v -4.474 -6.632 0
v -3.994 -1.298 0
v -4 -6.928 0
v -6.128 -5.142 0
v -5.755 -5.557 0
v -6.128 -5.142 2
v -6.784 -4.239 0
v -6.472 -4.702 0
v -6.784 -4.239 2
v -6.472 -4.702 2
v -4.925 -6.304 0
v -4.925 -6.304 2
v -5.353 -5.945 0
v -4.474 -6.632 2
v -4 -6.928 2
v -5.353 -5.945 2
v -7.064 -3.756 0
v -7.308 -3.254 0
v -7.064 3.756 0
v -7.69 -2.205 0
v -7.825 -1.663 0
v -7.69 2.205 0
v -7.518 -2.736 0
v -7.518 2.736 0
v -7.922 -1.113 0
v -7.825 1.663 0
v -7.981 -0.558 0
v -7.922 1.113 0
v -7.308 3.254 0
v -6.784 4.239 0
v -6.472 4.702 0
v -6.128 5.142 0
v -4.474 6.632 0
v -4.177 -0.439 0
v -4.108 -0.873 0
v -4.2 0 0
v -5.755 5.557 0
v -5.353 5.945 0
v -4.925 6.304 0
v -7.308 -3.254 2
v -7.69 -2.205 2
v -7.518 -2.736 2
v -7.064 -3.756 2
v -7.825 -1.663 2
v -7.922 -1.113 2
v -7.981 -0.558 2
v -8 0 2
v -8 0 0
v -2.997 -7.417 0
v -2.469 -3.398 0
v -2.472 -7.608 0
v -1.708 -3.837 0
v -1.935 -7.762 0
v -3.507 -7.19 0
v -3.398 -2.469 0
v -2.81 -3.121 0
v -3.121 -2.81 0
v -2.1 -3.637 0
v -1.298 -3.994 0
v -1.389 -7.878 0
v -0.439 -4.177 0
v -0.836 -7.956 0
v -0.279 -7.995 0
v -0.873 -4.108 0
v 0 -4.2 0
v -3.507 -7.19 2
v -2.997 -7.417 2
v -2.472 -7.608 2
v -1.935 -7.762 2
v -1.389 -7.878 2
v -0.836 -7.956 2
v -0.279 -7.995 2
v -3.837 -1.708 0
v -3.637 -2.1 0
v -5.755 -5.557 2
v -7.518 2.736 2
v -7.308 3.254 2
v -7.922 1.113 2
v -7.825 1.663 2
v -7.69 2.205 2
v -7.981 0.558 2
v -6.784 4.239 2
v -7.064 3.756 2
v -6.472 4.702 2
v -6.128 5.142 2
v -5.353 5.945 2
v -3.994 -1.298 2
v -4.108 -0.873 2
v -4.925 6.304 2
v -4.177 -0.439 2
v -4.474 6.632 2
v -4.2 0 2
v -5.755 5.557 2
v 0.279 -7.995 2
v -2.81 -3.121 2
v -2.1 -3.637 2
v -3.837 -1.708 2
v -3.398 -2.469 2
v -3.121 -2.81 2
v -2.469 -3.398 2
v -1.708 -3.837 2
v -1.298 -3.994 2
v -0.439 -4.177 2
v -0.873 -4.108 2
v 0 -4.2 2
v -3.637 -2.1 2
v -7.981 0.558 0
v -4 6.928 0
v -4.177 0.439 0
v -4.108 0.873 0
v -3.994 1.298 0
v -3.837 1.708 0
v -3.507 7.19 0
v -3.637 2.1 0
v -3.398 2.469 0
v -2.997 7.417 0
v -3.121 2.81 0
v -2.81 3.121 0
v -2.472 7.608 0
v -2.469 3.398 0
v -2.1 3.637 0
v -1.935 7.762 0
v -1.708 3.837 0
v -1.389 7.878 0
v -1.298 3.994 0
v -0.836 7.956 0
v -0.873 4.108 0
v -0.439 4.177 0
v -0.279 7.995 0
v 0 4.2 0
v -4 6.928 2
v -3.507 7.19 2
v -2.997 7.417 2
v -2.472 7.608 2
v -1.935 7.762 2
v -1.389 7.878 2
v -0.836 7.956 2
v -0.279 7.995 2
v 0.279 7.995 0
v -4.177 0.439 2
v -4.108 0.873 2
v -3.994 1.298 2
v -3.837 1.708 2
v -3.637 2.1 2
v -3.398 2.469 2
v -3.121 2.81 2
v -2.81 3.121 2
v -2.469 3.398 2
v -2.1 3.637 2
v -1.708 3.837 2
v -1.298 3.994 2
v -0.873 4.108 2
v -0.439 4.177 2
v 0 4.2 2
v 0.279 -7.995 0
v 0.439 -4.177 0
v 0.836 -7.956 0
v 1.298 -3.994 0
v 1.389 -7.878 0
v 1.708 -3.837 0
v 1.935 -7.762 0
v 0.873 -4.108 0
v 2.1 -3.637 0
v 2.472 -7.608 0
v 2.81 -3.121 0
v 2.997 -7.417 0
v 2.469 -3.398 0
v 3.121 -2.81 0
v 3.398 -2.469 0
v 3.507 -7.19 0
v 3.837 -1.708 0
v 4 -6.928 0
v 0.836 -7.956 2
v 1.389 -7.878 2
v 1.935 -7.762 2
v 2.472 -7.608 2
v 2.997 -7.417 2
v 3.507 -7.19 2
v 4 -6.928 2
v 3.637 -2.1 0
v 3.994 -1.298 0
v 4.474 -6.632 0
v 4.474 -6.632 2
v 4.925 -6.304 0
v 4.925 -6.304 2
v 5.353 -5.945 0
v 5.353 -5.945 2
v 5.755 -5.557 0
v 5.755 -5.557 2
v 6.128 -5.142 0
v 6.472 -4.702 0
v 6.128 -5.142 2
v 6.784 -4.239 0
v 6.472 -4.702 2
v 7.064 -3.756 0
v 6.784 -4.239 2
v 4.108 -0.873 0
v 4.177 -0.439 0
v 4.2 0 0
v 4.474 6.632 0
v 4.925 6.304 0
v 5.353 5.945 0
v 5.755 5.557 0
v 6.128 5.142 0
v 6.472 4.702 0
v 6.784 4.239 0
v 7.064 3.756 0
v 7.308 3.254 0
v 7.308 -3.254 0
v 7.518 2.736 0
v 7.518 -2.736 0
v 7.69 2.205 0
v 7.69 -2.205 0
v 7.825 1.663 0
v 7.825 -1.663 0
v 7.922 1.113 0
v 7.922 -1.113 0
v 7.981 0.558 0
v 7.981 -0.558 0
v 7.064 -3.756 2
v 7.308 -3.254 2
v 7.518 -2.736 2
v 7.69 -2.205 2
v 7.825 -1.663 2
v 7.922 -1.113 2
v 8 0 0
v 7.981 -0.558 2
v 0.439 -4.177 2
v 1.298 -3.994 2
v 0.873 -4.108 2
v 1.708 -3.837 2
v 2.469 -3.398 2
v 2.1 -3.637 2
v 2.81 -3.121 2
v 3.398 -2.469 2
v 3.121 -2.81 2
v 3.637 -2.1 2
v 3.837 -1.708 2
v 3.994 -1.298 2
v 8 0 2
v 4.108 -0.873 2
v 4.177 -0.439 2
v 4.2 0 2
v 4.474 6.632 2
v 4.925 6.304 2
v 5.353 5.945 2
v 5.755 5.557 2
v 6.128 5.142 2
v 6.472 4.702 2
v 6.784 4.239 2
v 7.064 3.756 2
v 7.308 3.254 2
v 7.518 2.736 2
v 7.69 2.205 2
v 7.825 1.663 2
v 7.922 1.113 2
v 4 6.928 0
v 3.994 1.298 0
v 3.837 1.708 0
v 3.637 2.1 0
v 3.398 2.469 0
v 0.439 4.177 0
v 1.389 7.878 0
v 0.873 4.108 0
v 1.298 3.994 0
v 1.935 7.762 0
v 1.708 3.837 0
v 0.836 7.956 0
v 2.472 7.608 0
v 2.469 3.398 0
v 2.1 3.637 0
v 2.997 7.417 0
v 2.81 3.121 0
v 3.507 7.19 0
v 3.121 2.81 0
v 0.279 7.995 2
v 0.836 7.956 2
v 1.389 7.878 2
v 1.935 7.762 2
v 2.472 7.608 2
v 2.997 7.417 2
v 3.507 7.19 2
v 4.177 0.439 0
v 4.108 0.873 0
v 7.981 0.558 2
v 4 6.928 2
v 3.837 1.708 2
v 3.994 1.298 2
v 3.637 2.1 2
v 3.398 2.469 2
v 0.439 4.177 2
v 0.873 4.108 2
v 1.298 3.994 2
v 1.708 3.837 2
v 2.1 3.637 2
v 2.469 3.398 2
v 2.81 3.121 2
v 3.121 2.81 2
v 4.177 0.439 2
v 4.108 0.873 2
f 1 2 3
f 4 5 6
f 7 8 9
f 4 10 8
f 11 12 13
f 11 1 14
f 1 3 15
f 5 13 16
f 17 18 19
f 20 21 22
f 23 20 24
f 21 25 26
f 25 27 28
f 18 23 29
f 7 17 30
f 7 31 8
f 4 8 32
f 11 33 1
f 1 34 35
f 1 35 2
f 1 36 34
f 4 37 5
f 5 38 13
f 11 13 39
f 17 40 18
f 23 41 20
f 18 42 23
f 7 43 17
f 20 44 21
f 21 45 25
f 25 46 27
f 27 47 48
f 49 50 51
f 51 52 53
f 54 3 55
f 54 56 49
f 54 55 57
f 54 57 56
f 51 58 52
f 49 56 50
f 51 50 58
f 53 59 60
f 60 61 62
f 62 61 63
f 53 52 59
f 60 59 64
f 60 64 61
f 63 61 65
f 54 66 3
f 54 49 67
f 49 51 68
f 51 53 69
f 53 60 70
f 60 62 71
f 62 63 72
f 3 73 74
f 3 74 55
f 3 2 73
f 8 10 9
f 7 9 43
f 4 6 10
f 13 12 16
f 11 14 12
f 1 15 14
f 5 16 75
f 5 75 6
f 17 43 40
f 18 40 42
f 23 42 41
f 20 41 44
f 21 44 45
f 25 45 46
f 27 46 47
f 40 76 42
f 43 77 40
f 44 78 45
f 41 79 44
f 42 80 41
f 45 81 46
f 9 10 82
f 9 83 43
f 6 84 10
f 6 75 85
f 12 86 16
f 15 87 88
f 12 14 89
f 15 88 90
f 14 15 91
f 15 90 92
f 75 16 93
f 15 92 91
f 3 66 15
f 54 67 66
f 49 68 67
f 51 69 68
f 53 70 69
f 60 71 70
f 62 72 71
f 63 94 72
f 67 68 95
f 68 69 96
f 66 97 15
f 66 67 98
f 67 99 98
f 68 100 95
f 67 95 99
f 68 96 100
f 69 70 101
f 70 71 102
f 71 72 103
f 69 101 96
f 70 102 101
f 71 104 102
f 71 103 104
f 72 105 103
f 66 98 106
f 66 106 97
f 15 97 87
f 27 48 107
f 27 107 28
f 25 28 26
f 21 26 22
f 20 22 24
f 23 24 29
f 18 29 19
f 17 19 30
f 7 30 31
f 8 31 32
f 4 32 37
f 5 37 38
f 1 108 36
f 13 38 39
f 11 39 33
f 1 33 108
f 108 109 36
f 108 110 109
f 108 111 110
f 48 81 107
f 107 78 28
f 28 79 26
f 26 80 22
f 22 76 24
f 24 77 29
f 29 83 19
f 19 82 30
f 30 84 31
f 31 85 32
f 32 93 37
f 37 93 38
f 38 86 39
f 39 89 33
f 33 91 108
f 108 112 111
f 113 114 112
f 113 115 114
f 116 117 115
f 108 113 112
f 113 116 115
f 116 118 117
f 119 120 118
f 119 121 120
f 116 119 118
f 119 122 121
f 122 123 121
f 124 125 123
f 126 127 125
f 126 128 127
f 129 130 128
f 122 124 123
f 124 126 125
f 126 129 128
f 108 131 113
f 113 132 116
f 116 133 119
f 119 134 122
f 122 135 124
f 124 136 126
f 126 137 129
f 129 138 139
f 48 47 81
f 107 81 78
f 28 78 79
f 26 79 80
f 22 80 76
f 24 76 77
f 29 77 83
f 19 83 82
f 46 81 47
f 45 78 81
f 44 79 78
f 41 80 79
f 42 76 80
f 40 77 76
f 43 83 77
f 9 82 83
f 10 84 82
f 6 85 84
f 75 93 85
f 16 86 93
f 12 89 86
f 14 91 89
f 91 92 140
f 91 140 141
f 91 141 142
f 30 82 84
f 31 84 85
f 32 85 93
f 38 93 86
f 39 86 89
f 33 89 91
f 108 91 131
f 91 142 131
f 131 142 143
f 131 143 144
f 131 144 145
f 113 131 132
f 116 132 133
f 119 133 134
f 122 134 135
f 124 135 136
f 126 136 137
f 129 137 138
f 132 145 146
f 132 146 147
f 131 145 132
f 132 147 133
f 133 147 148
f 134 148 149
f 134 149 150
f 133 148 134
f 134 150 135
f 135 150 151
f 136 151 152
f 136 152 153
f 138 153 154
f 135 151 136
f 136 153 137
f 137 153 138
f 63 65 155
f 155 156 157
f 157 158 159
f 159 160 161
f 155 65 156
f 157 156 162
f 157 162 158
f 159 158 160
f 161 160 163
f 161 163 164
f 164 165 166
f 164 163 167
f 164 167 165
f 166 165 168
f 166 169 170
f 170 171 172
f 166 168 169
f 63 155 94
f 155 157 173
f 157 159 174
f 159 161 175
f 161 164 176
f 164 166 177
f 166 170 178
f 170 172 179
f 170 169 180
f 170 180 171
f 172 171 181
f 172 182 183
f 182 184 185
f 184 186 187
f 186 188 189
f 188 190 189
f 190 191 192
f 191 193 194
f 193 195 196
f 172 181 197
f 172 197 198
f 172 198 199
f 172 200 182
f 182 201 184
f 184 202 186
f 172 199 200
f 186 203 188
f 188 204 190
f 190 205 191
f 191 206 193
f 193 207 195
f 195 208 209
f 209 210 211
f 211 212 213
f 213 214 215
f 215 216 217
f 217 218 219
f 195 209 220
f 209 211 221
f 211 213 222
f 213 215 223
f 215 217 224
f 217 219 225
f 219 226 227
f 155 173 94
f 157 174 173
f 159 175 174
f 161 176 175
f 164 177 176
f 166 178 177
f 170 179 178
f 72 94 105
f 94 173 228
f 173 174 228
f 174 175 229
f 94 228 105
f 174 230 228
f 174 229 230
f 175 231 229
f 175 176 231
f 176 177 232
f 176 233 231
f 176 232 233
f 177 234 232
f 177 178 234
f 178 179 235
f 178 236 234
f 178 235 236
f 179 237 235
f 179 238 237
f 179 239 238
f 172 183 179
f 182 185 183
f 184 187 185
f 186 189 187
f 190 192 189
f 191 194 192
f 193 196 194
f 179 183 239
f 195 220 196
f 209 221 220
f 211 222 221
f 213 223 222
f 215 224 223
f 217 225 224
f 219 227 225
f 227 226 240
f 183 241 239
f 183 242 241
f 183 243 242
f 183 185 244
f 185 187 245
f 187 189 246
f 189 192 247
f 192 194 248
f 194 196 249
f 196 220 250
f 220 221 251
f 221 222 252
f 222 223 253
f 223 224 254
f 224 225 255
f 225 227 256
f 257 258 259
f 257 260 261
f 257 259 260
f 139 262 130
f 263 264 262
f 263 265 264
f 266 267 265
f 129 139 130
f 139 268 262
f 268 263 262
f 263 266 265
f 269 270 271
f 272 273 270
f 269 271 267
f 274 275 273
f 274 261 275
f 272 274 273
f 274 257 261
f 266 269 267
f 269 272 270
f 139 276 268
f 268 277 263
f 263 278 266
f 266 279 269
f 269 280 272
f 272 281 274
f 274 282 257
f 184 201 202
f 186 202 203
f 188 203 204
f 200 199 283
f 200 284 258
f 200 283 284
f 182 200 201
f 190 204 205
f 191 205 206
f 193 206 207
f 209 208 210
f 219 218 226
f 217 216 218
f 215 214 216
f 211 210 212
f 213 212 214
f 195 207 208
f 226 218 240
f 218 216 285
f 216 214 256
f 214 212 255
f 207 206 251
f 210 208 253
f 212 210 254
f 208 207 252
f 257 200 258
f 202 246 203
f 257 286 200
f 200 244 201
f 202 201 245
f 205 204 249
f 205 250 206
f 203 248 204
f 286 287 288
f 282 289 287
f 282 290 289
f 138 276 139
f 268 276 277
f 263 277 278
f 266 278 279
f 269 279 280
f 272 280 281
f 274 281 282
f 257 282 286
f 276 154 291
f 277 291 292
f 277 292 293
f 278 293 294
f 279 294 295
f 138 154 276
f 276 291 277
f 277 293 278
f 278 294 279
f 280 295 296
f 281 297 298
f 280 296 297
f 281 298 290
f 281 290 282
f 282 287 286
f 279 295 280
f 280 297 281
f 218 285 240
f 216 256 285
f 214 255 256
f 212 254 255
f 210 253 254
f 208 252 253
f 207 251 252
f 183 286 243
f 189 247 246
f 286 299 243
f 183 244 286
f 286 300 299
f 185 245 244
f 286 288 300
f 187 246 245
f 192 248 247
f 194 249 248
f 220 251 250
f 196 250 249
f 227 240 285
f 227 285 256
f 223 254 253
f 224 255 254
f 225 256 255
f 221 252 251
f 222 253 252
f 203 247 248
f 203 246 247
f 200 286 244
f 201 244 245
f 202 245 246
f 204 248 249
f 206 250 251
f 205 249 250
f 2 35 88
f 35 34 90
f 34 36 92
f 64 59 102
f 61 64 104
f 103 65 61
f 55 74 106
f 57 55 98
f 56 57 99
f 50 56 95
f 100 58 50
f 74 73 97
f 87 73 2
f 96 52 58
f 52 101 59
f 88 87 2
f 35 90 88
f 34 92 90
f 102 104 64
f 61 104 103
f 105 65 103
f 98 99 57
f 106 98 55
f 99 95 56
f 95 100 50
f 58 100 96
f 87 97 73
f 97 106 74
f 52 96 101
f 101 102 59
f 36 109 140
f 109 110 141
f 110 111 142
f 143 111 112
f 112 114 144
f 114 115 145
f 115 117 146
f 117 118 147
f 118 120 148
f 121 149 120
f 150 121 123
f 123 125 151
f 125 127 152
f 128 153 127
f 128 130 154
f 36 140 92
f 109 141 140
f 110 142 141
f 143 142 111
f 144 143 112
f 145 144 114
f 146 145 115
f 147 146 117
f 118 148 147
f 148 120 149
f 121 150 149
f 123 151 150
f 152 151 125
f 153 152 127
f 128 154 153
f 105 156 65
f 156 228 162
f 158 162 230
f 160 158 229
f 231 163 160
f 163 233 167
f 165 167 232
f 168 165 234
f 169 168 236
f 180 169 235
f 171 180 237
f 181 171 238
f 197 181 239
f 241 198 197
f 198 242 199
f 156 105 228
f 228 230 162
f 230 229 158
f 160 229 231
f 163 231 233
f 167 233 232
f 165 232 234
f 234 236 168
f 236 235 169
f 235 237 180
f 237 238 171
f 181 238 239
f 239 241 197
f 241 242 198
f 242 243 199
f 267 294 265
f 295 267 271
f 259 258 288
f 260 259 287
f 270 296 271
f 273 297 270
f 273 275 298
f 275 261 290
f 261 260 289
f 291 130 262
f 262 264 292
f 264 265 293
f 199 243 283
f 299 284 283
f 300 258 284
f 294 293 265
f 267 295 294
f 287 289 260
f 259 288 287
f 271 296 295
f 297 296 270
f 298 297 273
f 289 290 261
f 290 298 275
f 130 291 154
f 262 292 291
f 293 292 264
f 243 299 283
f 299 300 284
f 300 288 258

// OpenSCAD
// file: ../lib/hardware.scad
// ============================================================================
// lib/hardware.scad — inserts, bearing pockets, motor patterns, race groove, helpers.
// ============================================================================
include <../config.scad>
eps = 0.01;

// Rounded box from z=0 up, corner radius r in XY.
module rbox(size, r = 3) {
    linear_extrude(height = size[2]) offset(r = r) offset(delta = -r) square([size[0], size[1]]);
}
// Cylinder along +X from x0 to x1 / along +Y / along +Z
module xcyl(d, x0, x1) { translate([x0, 0, 0]) rotate([0, 90, 0]) cylinder(d = d, h = x1 - x0); }
module ycyl(d, y0, y1) { translate([0, y0, 0]) rotate([-90, 0, 0]) cylinder(d = d, h = y1 - y0); }
module zcyl(d, z0, z1) { translate([0, 0, z0]) cylinder(d = d, h = z1 - z0); }

// Heat-set insert hole, axis -Z from z=0 (the face). size: "m3" | "m4" | "m5".
module insert_hole(size = "m3", extra = insert_extra) {
    d = size == "m3" ? m3_insert_d : size == "m4" ? m4_insert_d : m5_insert_d;
    h = size == "m3" ? m3_insert_h : size == "m4" ? m4_insert_h : m5_insert_h;
    pilot = size == "m3" ? 2.6 : size == "m4" ? 3.4 : 4.4;
    translate([0, 0, -h]) cylinder(d = d, h = h + eps);
    translate([0, 0, -h - extra]) cylinder(d = pilot, h = extra + eps);
    translate([0, 0, -0.6]) cylinder(d1 = d, d2 = d + 1.2, h = 0.6 + eps);   // lead-in chamfer
}
// Through hole with a counterbore for the head, axis Z, face at z=0, part below.
module cbore(d, head_d, head_h, through = 30) {
    translate([0, 0, -head_h]) cylinder(d = head_d, h = head_h + eps);
    translate([0, 0, -through]) cylinder(d = d, h = through + eps);
}
// Slot (stadium) along a direction vector dir (2D), length l, width w, extruded through t (z 0..t)
module slot(w, l, t, dir = [1, 0]) {
    a = atan2(dir[1], dir[0]);
    rotate(a) hull() { translate([-l / 2, 0, -eps]) cylinder(d = w, h = t + 2 * eps); translate([l / 2, 0, -eps]) cylinder(d = w, h = t + 2 * eps); }
}

// 608 pocket open on +Z (z=0 is the open face), with a lip hole below for the stub.
module bearing_pocket(b = b608, lip_hole = undef) {
    od = b[1] + fit_bearing;
    lh = lip_hole == undef ? b[0] + 1.5 : lip_hole;
    translate([0, 0, -b[2]]) cylinder(d = od, h = b[2] + eps);
    translate([0, 0, -50]) cylinder(d = lh, h = 100);
}

// NEMA 17 face cut along Z through thickness t (z 0..t); slot_l > 0 slots the bolt holes along slot_dir.
module nema17_cut(t, slot_l = 0, slot_dir = [0, 1], boss_d = motor_boss_d + fit_hole) {
    for (sx = [-1, 1], sy = [-1, 1]) translate([sx * motor_bolt_pitch / 2, sy * motor_bolt_pitch / 2, 0])
        if (slot_l > 0) slot(motor_bolt_d, slot_l, t, slot_dir); else translate([0, 0, -eps]) cylinder(d = motor_bolt_d, h = t + 2 * eps);
    translate([0, 0, -eps]) cylinder(d = boss_d, h = t + 2 * eps);
}
// Preview NEMA 17: face at z=0, shaft +Z, body below.
module nema17_body() {
    color("silver") translate([-motor_w / 2, -motor_w / 2, -motor_l]) cube([motor_w, motor_w, motor_l]);
    color("gray") cylinder(d = motor_boss_d - 0.3, h = motor_boss_h);
    color("gray") cylinder(d = motor_shaft_d, h = motor_shaft_l);
}
// D-shaft bore along +Z from z=0 to depth.
module d_bore(depth, d = motor_shaft_d + 0.25, flat = motor_shaft_flat + 0.15) {
    translate([0, 0, -eps]) intersection() {
        cylinder(d = d, h = depth + 2 * eps);
        translate([-d / 2, -d / 2 + (d - flat), 0]) cube([d, d, depth + 2 * eps]);
    }
}

// 28BYJ-48 face cut through thickness t (z 0..t): shaft/boss hole at the origin, body centre offset
// along +Y by ffm_shaft_off, ears along X through the body centre.
module ffm_cut(t) {
    translate([0, 0, -eps]) cylinder(d = ffm_boss_d + fit_hole, h = t + 2 * eps);
    for (s = [-1, 1]) translate([s * ffm_ear_pitch / 2, ffm_shaft_off, 0]) insert_hole("m4", extra = 0);
}
// Preview 28BYJ-48: face at z=0, shaft +Z, body below (offset +Y).
module ffm_body() {
    color("steelblue") translate([0, ffm_shaft_off, -ffm_body_l]) cylinder(d = ffm_body_d, h = ffm_body_l);
    color("steelblue") translate([0, ffm_shaft_off, -1]) hull() for (s = [-1, 1]) translate([s * ffm_ear_pitch / 2, 0, 0]) cylinder(d = ffm_ear_w, h = 1);
    color("gray") cylinder(d = ffm_boss_d, h = ffm_boss_h);
    color("gray") cylinder(d = ffm_shaft_d, h = ffm_shaft_l);
}
module ffm_d_bore(depth) { d_bore(depth, d = ffm_shaft_d + 0.25, flat = ffm_shaft_flat + 0.15); }

// 90-degree V race groove cutting tool, axis Z, in a face at z=face_z, apex below it by `depth`.
module race_groove(r, depth = groove_d, face_z = 0, clearance = 0.1) {
    w = depth + clearance;
    rotate_extrude($fn = 360)
        polygon([[r - w - eps, face_z + eps], [r + w + eps, face_z + eps], [r, face_z - depth - clearance * sqrt(2)]]);
}
// Preview balls on a race, centred at z.
module race_balls(r, z) { color("silver") for (i = [0 : n_balls - 1]) rotate(i * 360 / n_balls) translate([r, 0, z]) sphere(d = ball_d, $fn = 24); }
// main file
// spacer.scad — trunnion washer between arm and upright (2 needed).
include <../lib/hardware.scad>
module spacer(v = "") difference() { cylinder(d = spacer_d, h = spacer_t, $fn = 90); translate([0, 0, -1]) cylinder(d = stub_d + 0.4, h = spacer_t + 2, $fn = 60); }
spacer();
